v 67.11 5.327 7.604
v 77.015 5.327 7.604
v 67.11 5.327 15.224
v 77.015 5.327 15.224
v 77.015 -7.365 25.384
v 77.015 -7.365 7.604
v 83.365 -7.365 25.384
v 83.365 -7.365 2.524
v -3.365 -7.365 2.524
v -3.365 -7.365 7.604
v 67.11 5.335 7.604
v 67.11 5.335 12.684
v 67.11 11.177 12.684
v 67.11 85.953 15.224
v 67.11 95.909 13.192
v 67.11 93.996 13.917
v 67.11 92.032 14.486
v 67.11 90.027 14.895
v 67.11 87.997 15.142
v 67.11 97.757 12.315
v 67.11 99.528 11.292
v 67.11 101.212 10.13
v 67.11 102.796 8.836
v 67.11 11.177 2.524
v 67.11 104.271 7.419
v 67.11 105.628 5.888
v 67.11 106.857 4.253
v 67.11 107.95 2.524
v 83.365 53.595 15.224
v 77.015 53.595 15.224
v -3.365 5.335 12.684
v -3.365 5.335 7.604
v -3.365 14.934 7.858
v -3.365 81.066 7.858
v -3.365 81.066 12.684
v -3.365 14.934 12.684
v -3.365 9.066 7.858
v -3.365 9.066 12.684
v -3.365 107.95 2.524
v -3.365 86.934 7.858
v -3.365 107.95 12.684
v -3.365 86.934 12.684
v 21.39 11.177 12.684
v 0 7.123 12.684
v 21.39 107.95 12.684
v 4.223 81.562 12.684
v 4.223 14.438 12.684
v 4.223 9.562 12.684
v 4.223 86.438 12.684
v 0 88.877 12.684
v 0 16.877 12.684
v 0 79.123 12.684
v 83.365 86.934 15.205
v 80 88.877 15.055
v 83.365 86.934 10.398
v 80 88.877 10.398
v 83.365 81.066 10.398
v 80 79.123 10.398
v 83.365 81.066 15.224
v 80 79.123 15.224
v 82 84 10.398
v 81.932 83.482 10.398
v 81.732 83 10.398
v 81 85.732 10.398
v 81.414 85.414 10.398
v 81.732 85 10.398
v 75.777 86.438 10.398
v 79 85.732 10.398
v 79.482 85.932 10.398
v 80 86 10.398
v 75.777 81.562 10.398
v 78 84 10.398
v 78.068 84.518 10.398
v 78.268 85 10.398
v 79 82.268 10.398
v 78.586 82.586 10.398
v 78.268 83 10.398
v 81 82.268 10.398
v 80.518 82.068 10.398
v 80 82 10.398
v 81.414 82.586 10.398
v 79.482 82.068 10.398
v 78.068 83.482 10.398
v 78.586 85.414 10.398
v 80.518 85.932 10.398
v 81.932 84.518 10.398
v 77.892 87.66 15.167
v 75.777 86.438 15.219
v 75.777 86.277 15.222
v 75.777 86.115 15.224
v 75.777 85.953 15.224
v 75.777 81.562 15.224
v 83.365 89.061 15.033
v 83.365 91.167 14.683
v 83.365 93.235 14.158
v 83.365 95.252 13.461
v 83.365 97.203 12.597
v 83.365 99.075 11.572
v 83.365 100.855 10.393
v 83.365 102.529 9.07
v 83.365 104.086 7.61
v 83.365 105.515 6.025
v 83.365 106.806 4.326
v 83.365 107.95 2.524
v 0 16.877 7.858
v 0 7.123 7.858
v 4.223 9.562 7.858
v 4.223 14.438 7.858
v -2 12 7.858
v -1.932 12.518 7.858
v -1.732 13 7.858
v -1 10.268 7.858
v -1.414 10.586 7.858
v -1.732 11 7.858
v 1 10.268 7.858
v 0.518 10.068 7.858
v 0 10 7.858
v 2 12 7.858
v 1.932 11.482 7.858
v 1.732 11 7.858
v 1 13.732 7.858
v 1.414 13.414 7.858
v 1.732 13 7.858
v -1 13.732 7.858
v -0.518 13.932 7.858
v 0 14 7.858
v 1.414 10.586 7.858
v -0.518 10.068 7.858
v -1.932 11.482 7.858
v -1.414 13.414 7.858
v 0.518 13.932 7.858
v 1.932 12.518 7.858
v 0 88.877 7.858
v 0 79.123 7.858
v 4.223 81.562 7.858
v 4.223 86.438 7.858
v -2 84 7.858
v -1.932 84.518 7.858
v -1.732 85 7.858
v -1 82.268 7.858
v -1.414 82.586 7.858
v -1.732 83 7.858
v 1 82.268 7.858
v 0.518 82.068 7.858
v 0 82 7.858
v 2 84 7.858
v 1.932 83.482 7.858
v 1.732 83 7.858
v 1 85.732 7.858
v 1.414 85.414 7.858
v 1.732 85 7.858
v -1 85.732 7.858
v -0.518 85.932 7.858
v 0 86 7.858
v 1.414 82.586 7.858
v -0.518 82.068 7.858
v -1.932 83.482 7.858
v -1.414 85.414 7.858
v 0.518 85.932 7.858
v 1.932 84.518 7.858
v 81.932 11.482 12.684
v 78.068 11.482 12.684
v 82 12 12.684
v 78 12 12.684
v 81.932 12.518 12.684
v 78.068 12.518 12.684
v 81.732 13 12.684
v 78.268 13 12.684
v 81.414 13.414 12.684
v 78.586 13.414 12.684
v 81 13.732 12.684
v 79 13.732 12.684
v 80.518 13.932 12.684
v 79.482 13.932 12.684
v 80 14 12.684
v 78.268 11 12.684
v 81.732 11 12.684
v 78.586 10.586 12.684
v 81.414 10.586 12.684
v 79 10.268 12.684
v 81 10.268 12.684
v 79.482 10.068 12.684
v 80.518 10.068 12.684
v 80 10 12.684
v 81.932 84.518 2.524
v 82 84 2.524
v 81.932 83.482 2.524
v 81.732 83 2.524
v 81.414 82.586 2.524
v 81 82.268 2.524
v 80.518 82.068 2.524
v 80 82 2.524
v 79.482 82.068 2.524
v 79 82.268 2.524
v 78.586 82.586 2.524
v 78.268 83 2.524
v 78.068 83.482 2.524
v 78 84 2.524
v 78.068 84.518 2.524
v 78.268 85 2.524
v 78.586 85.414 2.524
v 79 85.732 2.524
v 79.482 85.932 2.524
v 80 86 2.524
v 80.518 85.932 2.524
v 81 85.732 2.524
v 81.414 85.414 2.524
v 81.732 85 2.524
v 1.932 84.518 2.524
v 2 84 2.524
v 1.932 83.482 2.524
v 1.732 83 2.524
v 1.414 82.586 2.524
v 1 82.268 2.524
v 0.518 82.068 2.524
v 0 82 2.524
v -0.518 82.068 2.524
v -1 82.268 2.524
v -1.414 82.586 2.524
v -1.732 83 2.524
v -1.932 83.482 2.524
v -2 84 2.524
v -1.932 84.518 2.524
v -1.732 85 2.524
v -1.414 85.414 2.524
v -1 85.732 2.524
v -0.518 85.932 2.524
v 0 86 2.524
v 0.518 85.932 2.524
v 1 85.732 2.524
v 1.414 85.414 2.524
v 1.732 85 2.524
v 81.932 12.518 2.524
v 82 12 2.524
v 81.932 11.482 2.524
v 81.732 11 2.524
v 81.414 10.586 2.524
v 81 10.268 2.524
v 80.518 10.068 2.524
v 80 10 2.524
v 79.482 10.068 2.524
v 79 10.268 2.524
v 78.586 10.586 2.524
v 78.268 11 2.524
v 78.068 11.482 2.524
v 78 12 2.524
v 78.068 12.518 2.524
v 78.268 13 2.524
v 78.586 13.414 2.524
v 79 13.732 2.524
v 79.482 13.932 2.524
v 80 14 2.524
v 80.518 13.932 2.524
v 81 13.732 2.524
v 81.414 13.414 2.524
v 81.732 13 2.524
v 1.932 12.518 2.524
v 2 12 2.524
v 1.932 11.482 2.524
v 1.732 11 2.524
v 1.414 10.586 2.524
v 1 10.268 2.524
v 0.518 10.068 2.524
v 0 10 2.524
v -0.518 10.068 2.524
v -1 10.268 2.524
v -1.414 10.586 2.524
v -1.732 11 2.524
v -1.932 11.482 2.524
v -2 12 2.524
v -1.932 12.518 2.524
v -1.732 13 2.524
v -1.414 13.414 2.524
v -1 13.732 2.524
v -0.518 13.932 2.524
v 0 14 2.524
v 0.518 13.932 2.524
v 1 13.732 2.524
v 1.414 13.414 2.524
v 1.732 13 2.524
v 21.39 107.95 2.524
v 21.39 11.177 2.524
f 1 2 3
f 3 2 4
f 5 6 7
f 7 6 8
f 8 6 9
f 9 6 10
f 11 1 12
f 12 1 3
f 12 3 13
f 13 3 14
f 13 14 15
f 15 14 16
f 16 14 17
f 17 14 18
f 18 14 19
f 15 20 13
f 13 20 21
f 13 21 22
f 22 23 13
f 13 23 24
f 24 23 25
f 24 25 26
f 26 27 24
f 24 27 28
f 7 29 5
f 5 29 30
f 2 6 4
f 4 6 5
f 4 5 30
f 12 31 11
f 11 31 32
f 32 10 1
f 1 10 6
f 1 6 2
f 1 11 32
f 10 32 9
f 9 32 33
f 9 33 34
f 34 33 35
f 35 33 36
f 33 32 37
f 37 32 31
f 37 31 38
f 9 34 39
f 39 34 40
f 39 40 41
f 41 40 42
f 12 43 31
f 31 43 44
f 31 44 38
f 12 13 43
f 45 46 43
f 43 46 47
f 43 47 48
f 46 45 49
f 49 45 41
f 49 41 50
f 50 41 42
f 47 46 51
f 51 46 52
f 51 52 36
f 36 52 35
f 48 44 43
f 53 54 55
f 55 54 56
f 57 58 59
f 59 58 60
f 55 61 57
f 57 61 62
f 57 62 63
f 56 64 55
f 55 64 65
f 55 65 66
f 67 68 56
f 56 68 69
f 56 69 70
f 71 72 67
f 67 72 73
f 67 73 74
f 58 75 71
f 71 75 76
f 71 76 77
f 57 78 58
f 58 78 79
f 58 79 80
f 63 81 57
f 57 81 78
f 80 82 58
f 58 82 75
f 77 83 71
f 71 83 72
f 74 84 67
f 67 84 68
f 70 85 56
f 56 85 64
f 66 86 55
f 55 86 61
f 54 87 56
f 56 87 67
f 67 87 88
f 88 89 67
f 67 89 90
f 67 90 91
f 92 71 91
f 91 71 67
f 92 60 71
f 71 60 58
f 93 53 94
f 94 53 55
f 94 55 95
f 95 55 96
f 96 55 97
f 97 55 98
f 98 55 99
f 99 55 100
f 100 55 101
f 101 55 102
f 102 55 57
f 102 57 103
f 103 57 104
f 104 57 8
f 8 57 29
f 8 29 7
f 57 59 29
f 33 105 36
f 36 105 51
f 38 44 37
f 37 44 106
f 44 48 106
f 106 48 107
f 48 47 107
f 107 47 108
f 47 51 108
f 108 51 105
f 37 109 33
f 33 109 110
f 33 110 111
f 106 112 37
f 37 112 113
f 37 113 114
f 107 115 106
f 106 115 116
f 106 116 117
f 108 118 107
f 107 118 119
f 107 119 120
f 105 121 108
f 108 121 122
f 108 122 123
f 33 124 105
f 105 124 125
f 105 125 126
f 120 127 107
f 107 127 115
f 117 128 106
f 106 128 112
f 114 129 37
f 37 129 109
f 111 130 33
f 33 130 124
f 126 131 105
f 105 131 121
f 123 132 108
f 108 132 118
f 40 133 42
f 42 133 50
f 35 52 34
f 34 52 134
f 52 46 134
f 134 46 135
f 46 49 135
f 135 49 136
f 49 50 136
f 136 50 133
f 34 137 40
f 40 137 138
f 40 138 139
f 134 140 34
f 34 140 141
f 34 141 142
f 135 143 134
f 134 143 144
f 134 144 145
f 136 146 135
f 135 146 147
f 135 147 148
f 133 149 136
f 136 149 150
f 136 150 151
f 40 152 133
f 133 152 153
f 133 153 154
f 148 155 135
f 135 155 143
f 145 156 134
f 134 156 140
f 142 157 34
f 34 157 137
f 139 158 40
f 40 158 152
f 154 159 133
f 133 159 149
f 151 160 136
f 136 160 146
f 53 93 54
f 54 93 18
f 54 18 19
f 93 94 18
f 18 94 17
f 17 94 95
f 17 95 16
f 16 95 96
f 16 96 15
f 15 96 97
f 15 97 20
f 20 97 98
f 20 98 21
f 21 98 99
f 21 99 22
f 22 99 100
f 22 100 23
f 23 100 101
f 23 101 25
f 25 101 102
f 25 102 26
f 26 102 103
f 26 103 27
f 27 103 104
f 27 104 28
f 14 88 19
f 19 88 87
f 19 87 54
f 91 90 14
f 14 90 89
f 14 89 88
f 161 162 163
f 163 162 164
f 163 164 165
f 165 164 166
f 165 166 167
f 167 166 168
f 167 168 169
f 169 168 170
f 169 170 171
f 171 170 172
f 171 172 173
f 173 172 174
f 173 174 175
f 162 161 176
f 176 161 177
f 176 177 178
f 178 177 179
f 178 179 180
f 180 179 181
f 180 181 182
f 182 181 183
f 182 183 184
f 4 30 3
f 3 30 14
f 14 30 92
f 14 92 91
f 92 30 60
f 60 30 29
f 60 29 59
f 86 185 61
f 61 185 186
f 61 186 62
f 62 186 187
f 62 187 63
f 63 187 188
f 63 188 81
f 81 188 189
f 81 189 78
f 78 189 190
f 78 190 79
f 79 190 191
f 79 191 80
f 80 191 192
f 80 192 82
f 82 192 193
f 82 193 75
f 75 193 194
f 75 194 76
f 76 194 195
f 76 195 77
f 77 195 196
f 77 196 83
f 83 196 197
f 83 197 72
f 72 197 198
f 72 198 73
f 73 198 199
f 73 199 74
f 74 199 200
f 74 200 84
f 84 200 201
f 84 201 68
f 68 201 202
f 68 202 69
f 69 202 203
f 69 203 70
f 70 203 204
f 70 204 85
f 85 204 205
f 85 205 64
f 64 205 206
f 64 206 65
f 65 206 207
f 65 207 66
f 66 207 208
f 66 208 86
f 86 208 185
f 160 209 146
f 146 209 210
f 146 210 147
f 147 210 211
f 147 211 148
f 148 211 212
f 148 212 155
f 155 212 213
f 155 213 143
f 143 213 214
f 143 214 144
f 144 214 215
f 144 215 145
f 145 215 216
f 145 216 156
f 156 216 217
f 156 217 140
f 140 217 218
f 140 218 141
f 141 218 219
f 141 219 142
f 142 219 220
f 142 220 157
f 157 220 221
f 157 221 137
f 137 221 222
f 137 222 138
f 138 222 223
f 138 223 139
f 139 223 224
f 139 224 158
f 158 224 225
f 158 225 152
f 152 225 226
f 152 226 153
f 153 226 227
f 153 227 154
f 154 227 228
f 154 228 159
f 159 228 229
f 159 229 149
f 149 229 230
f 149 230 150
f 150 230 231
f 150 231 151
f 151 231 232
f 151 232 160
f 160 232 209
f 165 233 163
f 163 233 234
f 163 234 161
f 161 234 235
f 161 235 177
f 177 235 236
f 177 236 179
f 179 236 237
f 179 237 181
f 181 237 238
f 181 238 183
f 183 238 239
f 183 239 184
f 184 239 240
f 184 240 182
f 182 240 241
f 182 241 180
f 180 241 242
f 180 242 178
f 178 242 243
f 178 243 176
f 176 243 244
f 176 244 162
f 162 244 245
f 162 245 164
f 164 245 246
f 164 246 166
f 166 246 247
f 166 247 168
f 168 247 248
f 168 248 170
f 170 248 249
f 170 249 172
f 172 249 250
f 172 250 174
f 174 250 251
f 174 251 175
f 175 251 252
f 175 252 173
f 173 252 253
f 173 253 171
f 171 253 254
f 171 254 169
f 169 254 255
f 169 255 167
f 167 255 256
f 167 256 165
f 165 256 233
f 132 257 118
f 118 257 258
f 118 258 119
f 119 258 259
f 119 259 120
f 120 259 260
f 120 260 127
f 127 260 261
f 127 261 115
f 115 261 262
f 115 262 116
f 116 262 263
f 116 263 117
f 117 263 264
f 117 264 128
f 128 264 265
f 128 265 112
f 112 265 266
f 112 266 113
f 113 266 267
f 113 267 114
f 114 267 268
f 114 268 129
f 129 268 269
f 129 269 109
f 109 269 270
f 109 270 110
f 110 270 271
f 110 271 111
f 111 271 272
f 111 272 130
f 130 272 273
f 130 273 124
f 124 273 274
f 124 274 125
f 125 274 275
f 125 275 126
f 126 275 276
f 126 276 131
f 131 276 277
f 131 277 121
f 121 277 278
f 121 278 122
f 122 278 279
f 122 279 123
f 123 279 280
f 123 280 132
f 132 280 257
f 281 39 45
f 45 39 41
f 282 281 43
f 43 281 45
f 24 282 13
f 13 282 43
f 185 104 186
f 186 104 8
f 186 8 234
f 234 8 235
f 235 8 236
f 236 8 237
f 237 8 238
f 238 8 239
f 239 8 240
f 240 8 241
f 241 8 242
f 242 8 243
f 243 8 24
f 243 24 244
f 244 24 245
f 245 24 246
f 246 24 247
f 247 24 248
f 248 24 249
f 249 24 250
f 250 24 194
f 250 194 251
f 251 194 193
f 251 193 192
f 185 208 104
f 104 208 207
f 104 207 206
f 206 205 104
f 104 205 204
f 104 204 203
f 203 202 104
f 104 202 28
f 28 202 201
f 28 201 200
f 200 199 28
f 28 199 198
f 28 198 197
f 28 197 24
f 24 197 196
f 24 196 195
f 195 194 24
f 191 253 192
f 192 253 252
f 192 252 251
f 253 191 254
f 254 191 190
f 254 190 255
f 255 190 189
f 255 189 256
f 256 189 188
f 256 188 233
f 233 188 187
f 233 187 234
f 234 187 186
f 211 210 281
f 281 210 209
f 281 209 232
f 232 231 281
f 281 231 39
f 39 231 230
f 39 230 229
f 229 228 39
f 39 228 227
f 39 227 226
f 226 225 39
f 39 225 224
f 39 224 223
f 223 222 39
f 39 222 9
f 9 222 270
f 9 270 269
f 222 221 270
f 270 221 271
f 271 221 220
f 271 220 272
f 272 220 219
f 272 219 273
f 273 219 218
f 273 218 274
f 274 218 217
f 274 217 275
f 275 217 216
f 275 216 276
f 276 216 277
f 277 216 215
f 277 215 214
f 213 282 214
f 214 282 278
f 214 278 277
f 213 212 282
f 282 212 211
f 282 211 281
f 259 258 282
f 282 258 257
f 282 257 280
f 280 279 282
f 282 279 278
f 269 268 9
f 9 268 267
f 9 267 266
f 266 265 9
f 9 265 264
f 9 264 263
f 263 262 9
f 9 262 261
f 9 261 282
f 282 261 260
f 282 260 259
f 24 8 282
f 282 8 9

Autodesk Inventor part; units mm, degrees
ref_plane "YZ Plane" through (0, 0, 0) normal (1, 0, 0) x (0, 1, 0)
ref_plane "XZ Plane" through (0, 0, 0) normal (0, 1, 0) x (-1, 0, 0)
ref_plane "Work Plane1" through (0, 0, 2.5241) normal (0, 0, 1) x (1, 0, 0)
sketch "Sketch1" plane through (0, 0, 2.5241) normal (0, 0, 1) x (1, 0, 0)
  line L0 (-4, 272) -> (-4, -8) construction
  line L1 (4, 272) -> (4, -8) construction
  line L2 (76, 272) -> (76, -8) construction
  line L3 (84, 272) -> (84, -8) construction
  line L4 (84, -8) -> (-4, -8) construction
  line L5 (84, 106) -> (80, 106) construction
  line L6 (80, 110) -> (76, 110) construction
  line L7 (-3.365, 272) -> (-3.365, -7.365) construction
  line L8 (-3.365, -7.365) -> (83.365, -7.365) construction
  line L9 (83.365, -7.365) -> (83.365, 272) construction
  line L10 (-3.365, -7.365) -> (83.365, -7.365)
  line L11 (83.365, -7.365) -> (83.365, 107.95)
  line L12 (-3.365, 107.95) -> (-3.365, -7.365)
  circle A0 centre (0, 12) radius 2
  circle A1 centre (80, 12) radius 2
  circle A2 centre (0, 84) radius 2
  circle A3 centre (80, 84) radius 2
  line L13 (21.39, 107.95) -> (21.39, 11.177)
  line L14 (21.39, 11.177) -> (67.11, 11.177)
  line L15 (67.11, 11.177) -> (67.11, 107.95)
  line L16 (83.365, 107.95) -> (67.11, 107.95)
  line L17 (21.39, 107.95) -> (-3.365, 107.95)
  point P0 (0, 0)
  dimension "d0" = 0.635
  dimension "d1" = 8.89
  dimension "d2" = 45.72
  dimension "d18" = 18.542
extrude "Extrusion1" add sketch "Sketch1" along normal blind 10.16
sketch "Sketch2" plane through (0, 0, 12.6841) normal (0, 0, 1) x (1, 0, 0)
  line L0 (83.365, 107.95) -> (67.11, 107.95) projected
  line L1 (83.365, -7.365) -> (83.365, 107.95) projected
  line L2 (67.11, 107.95) -> (83.365, 107.95)
  line L3 (83.365, 107.95) -> (83.365, 23.8125)
  line L4 (67.11, 23.8125) -> (67.11, 107.95)
  circle A0 centre (80, 84) radius 2 projected
  circle A1 centre (80, 84) radius 1.9939
  line L5 (83.365, 23.8125) -> (83.365, -7.365)
  line L6 (83.365, -7.365) -> (67.11, -7.365)
  line L7 (67.11, -7.365) -> (67.11, 23.8125)
  point P0 (0, 0)
  dimension "d5" = 3.9878
extrude "Extrusion2" add sketch "Sketch2" along normal blind 2.54 contours L1 L6 L7 L4 L0
fillet "Fillet1" radius 25.4 1 edges at (75.2375, 107.95, 15.2241)
sketch "Sketch3" plane through (0, 0, 12.6841) normal (0, 0, 1) x (1, 0, 0)
  circle A0 centre (0, 12) radius 2 construction
  circle A1 centre (0, 12) radius 4.8768 construction
  circle A2 centre (0, 84) radius 2 construction
  circle A3 centre (0, 84) radius 4.8768 construction
  circle A4 centre (80, 12) radius 2 construction
  line L0 (0, 16.8768) -> (4.2234, 14.4384)
  line L1 (4.2234, 14.4384) -> (4.2234, 9.5616)
  line L2 (4.2234, 9.5616) -> (0, 7.1232)
  line L3 (0, 7.1232) -> (-4.2234, 9.5616)
  line L4 (-4.2234, 9.5616) -> (-4.2234, 14.4384)
  line L5 (-4.2234, 14.4384) -> (0, 16.8768)
  line L6 (0, 88.8768) -> (4.2234, 86.4384)
  line L7 (4.2234, 86.4384) -> (4.2234, 81.5616)
  line L8 (4.2234, 81.5616) -> (0, 79.1232)
  line L9 (0, 79.1232) -> (-4.2234, 81.5616)
  line L10 (-4.2234, 81.5616) -> (-4.2234, 86.4384)
  line L11 (-4.2234, 86.4384) -> (0, 88.8768)
  point P0 (0, 0)
  dimension "d9" = 9.7536
  dimension "d10" = 9.7536
extrude "Extrusion3" cut sketch "Sketch3" against normal blind 4.826
sketch "Sketch4" plane through (0, 0, 15.2241) normal (0, 0, 1) x (1, 0, 0)
  circle A0 centre (80, 84) radius 2 construction
  circle A1 centre (80, 84) radius 4.8768 construction
  line L0 (80, 88.8768) -> (84.2234, 86.4384)
  line L1 (84.2234, 86.4384) -> (84.2234, 81.5616)
  line L2 (84.2234, 81.5616) -> (80, 79.1232)
  line L3 (80, 79.1232) -> (75.7766, 81.5616)
  line L4 (75.7766, 81.5616) -> (75.7766, 86.4384)
  line L5 (75.7766, 86.4384) -> (80, 88.8768)
  point P0 (0, 0)
  dimension "d14" = 9.7536
extrude "Extrusion4" cut sketch "Sketch4" against normal blind 4.826
sketch "Sketch5" plane through (0, 0, 12.6841) normal (0, 0, 1) x (1, 0, 0)
  line L0 (-3.365, -7.365) -> (67.11, -7.365) projected
  line L1 (-3.365, -7.365) -> (67.11, -7.365)
  line L2 (67.11, 5.335) -> (-3.365, 5.335)
  line L3 (-3.365, 5.335) -> (-3.365, -7.365)
  line L4 (67.11, 5.335) -> (67.11, -7.365)
  line L5 (-3.365, -7.365) -> (83.365, -7.365) projected
  point P0 (0, 0)
extrude "Extrusion5" cut sketch "Sketch5" against normal blind 5.08
sketch "Sketch13" plane through (83.365, -7.365, 15.2241) normal (1, 0, 0) x (0, 0, -1)
  line L0 (0, 0) -> (7.62, 0) projected
  line L1 (0, 0) -> (-10.16, 0)
  line L2 (0, 93.318) -> (0, 0) projected
  line L3 (0, 0) -> (0, 60.96)
  line L4 (0, 60.96) -> (-10.16, 0)
  point P0 (15.2241, 7.365)
  dimension "d54" = 10.16
  dimension "d55" = 60.96
extrude "Extrusion13" add sketch "Sketch13" against normal blind 6.35
sketch "Sketch14" plane through (0, 0, 15.2241) normal (0, 0, 1) x (1, 0, 0)
  line L0 (67.11, -7.365) -> (77.015, -7.365) projected
  line L1 (77.015, -7.365) -> (77.015, 53.595) projected
  line L2 (67.11, -7.365) -> (77.015, -7.365)
  line L3 (77.015, -7.365) -> (77.015, 5.3272)
  line L4 (77.015, 5.3272) -> (67.11, 5.3272)
  line L5 (67.11, 5.3272) -> (67.11, -7.365)
  point P0 (0, 0)
extrude "Extrusion14" cut sketch "Sketch14" against normal up to surface (7.62 mm away)
properties part number "Back Wall"
